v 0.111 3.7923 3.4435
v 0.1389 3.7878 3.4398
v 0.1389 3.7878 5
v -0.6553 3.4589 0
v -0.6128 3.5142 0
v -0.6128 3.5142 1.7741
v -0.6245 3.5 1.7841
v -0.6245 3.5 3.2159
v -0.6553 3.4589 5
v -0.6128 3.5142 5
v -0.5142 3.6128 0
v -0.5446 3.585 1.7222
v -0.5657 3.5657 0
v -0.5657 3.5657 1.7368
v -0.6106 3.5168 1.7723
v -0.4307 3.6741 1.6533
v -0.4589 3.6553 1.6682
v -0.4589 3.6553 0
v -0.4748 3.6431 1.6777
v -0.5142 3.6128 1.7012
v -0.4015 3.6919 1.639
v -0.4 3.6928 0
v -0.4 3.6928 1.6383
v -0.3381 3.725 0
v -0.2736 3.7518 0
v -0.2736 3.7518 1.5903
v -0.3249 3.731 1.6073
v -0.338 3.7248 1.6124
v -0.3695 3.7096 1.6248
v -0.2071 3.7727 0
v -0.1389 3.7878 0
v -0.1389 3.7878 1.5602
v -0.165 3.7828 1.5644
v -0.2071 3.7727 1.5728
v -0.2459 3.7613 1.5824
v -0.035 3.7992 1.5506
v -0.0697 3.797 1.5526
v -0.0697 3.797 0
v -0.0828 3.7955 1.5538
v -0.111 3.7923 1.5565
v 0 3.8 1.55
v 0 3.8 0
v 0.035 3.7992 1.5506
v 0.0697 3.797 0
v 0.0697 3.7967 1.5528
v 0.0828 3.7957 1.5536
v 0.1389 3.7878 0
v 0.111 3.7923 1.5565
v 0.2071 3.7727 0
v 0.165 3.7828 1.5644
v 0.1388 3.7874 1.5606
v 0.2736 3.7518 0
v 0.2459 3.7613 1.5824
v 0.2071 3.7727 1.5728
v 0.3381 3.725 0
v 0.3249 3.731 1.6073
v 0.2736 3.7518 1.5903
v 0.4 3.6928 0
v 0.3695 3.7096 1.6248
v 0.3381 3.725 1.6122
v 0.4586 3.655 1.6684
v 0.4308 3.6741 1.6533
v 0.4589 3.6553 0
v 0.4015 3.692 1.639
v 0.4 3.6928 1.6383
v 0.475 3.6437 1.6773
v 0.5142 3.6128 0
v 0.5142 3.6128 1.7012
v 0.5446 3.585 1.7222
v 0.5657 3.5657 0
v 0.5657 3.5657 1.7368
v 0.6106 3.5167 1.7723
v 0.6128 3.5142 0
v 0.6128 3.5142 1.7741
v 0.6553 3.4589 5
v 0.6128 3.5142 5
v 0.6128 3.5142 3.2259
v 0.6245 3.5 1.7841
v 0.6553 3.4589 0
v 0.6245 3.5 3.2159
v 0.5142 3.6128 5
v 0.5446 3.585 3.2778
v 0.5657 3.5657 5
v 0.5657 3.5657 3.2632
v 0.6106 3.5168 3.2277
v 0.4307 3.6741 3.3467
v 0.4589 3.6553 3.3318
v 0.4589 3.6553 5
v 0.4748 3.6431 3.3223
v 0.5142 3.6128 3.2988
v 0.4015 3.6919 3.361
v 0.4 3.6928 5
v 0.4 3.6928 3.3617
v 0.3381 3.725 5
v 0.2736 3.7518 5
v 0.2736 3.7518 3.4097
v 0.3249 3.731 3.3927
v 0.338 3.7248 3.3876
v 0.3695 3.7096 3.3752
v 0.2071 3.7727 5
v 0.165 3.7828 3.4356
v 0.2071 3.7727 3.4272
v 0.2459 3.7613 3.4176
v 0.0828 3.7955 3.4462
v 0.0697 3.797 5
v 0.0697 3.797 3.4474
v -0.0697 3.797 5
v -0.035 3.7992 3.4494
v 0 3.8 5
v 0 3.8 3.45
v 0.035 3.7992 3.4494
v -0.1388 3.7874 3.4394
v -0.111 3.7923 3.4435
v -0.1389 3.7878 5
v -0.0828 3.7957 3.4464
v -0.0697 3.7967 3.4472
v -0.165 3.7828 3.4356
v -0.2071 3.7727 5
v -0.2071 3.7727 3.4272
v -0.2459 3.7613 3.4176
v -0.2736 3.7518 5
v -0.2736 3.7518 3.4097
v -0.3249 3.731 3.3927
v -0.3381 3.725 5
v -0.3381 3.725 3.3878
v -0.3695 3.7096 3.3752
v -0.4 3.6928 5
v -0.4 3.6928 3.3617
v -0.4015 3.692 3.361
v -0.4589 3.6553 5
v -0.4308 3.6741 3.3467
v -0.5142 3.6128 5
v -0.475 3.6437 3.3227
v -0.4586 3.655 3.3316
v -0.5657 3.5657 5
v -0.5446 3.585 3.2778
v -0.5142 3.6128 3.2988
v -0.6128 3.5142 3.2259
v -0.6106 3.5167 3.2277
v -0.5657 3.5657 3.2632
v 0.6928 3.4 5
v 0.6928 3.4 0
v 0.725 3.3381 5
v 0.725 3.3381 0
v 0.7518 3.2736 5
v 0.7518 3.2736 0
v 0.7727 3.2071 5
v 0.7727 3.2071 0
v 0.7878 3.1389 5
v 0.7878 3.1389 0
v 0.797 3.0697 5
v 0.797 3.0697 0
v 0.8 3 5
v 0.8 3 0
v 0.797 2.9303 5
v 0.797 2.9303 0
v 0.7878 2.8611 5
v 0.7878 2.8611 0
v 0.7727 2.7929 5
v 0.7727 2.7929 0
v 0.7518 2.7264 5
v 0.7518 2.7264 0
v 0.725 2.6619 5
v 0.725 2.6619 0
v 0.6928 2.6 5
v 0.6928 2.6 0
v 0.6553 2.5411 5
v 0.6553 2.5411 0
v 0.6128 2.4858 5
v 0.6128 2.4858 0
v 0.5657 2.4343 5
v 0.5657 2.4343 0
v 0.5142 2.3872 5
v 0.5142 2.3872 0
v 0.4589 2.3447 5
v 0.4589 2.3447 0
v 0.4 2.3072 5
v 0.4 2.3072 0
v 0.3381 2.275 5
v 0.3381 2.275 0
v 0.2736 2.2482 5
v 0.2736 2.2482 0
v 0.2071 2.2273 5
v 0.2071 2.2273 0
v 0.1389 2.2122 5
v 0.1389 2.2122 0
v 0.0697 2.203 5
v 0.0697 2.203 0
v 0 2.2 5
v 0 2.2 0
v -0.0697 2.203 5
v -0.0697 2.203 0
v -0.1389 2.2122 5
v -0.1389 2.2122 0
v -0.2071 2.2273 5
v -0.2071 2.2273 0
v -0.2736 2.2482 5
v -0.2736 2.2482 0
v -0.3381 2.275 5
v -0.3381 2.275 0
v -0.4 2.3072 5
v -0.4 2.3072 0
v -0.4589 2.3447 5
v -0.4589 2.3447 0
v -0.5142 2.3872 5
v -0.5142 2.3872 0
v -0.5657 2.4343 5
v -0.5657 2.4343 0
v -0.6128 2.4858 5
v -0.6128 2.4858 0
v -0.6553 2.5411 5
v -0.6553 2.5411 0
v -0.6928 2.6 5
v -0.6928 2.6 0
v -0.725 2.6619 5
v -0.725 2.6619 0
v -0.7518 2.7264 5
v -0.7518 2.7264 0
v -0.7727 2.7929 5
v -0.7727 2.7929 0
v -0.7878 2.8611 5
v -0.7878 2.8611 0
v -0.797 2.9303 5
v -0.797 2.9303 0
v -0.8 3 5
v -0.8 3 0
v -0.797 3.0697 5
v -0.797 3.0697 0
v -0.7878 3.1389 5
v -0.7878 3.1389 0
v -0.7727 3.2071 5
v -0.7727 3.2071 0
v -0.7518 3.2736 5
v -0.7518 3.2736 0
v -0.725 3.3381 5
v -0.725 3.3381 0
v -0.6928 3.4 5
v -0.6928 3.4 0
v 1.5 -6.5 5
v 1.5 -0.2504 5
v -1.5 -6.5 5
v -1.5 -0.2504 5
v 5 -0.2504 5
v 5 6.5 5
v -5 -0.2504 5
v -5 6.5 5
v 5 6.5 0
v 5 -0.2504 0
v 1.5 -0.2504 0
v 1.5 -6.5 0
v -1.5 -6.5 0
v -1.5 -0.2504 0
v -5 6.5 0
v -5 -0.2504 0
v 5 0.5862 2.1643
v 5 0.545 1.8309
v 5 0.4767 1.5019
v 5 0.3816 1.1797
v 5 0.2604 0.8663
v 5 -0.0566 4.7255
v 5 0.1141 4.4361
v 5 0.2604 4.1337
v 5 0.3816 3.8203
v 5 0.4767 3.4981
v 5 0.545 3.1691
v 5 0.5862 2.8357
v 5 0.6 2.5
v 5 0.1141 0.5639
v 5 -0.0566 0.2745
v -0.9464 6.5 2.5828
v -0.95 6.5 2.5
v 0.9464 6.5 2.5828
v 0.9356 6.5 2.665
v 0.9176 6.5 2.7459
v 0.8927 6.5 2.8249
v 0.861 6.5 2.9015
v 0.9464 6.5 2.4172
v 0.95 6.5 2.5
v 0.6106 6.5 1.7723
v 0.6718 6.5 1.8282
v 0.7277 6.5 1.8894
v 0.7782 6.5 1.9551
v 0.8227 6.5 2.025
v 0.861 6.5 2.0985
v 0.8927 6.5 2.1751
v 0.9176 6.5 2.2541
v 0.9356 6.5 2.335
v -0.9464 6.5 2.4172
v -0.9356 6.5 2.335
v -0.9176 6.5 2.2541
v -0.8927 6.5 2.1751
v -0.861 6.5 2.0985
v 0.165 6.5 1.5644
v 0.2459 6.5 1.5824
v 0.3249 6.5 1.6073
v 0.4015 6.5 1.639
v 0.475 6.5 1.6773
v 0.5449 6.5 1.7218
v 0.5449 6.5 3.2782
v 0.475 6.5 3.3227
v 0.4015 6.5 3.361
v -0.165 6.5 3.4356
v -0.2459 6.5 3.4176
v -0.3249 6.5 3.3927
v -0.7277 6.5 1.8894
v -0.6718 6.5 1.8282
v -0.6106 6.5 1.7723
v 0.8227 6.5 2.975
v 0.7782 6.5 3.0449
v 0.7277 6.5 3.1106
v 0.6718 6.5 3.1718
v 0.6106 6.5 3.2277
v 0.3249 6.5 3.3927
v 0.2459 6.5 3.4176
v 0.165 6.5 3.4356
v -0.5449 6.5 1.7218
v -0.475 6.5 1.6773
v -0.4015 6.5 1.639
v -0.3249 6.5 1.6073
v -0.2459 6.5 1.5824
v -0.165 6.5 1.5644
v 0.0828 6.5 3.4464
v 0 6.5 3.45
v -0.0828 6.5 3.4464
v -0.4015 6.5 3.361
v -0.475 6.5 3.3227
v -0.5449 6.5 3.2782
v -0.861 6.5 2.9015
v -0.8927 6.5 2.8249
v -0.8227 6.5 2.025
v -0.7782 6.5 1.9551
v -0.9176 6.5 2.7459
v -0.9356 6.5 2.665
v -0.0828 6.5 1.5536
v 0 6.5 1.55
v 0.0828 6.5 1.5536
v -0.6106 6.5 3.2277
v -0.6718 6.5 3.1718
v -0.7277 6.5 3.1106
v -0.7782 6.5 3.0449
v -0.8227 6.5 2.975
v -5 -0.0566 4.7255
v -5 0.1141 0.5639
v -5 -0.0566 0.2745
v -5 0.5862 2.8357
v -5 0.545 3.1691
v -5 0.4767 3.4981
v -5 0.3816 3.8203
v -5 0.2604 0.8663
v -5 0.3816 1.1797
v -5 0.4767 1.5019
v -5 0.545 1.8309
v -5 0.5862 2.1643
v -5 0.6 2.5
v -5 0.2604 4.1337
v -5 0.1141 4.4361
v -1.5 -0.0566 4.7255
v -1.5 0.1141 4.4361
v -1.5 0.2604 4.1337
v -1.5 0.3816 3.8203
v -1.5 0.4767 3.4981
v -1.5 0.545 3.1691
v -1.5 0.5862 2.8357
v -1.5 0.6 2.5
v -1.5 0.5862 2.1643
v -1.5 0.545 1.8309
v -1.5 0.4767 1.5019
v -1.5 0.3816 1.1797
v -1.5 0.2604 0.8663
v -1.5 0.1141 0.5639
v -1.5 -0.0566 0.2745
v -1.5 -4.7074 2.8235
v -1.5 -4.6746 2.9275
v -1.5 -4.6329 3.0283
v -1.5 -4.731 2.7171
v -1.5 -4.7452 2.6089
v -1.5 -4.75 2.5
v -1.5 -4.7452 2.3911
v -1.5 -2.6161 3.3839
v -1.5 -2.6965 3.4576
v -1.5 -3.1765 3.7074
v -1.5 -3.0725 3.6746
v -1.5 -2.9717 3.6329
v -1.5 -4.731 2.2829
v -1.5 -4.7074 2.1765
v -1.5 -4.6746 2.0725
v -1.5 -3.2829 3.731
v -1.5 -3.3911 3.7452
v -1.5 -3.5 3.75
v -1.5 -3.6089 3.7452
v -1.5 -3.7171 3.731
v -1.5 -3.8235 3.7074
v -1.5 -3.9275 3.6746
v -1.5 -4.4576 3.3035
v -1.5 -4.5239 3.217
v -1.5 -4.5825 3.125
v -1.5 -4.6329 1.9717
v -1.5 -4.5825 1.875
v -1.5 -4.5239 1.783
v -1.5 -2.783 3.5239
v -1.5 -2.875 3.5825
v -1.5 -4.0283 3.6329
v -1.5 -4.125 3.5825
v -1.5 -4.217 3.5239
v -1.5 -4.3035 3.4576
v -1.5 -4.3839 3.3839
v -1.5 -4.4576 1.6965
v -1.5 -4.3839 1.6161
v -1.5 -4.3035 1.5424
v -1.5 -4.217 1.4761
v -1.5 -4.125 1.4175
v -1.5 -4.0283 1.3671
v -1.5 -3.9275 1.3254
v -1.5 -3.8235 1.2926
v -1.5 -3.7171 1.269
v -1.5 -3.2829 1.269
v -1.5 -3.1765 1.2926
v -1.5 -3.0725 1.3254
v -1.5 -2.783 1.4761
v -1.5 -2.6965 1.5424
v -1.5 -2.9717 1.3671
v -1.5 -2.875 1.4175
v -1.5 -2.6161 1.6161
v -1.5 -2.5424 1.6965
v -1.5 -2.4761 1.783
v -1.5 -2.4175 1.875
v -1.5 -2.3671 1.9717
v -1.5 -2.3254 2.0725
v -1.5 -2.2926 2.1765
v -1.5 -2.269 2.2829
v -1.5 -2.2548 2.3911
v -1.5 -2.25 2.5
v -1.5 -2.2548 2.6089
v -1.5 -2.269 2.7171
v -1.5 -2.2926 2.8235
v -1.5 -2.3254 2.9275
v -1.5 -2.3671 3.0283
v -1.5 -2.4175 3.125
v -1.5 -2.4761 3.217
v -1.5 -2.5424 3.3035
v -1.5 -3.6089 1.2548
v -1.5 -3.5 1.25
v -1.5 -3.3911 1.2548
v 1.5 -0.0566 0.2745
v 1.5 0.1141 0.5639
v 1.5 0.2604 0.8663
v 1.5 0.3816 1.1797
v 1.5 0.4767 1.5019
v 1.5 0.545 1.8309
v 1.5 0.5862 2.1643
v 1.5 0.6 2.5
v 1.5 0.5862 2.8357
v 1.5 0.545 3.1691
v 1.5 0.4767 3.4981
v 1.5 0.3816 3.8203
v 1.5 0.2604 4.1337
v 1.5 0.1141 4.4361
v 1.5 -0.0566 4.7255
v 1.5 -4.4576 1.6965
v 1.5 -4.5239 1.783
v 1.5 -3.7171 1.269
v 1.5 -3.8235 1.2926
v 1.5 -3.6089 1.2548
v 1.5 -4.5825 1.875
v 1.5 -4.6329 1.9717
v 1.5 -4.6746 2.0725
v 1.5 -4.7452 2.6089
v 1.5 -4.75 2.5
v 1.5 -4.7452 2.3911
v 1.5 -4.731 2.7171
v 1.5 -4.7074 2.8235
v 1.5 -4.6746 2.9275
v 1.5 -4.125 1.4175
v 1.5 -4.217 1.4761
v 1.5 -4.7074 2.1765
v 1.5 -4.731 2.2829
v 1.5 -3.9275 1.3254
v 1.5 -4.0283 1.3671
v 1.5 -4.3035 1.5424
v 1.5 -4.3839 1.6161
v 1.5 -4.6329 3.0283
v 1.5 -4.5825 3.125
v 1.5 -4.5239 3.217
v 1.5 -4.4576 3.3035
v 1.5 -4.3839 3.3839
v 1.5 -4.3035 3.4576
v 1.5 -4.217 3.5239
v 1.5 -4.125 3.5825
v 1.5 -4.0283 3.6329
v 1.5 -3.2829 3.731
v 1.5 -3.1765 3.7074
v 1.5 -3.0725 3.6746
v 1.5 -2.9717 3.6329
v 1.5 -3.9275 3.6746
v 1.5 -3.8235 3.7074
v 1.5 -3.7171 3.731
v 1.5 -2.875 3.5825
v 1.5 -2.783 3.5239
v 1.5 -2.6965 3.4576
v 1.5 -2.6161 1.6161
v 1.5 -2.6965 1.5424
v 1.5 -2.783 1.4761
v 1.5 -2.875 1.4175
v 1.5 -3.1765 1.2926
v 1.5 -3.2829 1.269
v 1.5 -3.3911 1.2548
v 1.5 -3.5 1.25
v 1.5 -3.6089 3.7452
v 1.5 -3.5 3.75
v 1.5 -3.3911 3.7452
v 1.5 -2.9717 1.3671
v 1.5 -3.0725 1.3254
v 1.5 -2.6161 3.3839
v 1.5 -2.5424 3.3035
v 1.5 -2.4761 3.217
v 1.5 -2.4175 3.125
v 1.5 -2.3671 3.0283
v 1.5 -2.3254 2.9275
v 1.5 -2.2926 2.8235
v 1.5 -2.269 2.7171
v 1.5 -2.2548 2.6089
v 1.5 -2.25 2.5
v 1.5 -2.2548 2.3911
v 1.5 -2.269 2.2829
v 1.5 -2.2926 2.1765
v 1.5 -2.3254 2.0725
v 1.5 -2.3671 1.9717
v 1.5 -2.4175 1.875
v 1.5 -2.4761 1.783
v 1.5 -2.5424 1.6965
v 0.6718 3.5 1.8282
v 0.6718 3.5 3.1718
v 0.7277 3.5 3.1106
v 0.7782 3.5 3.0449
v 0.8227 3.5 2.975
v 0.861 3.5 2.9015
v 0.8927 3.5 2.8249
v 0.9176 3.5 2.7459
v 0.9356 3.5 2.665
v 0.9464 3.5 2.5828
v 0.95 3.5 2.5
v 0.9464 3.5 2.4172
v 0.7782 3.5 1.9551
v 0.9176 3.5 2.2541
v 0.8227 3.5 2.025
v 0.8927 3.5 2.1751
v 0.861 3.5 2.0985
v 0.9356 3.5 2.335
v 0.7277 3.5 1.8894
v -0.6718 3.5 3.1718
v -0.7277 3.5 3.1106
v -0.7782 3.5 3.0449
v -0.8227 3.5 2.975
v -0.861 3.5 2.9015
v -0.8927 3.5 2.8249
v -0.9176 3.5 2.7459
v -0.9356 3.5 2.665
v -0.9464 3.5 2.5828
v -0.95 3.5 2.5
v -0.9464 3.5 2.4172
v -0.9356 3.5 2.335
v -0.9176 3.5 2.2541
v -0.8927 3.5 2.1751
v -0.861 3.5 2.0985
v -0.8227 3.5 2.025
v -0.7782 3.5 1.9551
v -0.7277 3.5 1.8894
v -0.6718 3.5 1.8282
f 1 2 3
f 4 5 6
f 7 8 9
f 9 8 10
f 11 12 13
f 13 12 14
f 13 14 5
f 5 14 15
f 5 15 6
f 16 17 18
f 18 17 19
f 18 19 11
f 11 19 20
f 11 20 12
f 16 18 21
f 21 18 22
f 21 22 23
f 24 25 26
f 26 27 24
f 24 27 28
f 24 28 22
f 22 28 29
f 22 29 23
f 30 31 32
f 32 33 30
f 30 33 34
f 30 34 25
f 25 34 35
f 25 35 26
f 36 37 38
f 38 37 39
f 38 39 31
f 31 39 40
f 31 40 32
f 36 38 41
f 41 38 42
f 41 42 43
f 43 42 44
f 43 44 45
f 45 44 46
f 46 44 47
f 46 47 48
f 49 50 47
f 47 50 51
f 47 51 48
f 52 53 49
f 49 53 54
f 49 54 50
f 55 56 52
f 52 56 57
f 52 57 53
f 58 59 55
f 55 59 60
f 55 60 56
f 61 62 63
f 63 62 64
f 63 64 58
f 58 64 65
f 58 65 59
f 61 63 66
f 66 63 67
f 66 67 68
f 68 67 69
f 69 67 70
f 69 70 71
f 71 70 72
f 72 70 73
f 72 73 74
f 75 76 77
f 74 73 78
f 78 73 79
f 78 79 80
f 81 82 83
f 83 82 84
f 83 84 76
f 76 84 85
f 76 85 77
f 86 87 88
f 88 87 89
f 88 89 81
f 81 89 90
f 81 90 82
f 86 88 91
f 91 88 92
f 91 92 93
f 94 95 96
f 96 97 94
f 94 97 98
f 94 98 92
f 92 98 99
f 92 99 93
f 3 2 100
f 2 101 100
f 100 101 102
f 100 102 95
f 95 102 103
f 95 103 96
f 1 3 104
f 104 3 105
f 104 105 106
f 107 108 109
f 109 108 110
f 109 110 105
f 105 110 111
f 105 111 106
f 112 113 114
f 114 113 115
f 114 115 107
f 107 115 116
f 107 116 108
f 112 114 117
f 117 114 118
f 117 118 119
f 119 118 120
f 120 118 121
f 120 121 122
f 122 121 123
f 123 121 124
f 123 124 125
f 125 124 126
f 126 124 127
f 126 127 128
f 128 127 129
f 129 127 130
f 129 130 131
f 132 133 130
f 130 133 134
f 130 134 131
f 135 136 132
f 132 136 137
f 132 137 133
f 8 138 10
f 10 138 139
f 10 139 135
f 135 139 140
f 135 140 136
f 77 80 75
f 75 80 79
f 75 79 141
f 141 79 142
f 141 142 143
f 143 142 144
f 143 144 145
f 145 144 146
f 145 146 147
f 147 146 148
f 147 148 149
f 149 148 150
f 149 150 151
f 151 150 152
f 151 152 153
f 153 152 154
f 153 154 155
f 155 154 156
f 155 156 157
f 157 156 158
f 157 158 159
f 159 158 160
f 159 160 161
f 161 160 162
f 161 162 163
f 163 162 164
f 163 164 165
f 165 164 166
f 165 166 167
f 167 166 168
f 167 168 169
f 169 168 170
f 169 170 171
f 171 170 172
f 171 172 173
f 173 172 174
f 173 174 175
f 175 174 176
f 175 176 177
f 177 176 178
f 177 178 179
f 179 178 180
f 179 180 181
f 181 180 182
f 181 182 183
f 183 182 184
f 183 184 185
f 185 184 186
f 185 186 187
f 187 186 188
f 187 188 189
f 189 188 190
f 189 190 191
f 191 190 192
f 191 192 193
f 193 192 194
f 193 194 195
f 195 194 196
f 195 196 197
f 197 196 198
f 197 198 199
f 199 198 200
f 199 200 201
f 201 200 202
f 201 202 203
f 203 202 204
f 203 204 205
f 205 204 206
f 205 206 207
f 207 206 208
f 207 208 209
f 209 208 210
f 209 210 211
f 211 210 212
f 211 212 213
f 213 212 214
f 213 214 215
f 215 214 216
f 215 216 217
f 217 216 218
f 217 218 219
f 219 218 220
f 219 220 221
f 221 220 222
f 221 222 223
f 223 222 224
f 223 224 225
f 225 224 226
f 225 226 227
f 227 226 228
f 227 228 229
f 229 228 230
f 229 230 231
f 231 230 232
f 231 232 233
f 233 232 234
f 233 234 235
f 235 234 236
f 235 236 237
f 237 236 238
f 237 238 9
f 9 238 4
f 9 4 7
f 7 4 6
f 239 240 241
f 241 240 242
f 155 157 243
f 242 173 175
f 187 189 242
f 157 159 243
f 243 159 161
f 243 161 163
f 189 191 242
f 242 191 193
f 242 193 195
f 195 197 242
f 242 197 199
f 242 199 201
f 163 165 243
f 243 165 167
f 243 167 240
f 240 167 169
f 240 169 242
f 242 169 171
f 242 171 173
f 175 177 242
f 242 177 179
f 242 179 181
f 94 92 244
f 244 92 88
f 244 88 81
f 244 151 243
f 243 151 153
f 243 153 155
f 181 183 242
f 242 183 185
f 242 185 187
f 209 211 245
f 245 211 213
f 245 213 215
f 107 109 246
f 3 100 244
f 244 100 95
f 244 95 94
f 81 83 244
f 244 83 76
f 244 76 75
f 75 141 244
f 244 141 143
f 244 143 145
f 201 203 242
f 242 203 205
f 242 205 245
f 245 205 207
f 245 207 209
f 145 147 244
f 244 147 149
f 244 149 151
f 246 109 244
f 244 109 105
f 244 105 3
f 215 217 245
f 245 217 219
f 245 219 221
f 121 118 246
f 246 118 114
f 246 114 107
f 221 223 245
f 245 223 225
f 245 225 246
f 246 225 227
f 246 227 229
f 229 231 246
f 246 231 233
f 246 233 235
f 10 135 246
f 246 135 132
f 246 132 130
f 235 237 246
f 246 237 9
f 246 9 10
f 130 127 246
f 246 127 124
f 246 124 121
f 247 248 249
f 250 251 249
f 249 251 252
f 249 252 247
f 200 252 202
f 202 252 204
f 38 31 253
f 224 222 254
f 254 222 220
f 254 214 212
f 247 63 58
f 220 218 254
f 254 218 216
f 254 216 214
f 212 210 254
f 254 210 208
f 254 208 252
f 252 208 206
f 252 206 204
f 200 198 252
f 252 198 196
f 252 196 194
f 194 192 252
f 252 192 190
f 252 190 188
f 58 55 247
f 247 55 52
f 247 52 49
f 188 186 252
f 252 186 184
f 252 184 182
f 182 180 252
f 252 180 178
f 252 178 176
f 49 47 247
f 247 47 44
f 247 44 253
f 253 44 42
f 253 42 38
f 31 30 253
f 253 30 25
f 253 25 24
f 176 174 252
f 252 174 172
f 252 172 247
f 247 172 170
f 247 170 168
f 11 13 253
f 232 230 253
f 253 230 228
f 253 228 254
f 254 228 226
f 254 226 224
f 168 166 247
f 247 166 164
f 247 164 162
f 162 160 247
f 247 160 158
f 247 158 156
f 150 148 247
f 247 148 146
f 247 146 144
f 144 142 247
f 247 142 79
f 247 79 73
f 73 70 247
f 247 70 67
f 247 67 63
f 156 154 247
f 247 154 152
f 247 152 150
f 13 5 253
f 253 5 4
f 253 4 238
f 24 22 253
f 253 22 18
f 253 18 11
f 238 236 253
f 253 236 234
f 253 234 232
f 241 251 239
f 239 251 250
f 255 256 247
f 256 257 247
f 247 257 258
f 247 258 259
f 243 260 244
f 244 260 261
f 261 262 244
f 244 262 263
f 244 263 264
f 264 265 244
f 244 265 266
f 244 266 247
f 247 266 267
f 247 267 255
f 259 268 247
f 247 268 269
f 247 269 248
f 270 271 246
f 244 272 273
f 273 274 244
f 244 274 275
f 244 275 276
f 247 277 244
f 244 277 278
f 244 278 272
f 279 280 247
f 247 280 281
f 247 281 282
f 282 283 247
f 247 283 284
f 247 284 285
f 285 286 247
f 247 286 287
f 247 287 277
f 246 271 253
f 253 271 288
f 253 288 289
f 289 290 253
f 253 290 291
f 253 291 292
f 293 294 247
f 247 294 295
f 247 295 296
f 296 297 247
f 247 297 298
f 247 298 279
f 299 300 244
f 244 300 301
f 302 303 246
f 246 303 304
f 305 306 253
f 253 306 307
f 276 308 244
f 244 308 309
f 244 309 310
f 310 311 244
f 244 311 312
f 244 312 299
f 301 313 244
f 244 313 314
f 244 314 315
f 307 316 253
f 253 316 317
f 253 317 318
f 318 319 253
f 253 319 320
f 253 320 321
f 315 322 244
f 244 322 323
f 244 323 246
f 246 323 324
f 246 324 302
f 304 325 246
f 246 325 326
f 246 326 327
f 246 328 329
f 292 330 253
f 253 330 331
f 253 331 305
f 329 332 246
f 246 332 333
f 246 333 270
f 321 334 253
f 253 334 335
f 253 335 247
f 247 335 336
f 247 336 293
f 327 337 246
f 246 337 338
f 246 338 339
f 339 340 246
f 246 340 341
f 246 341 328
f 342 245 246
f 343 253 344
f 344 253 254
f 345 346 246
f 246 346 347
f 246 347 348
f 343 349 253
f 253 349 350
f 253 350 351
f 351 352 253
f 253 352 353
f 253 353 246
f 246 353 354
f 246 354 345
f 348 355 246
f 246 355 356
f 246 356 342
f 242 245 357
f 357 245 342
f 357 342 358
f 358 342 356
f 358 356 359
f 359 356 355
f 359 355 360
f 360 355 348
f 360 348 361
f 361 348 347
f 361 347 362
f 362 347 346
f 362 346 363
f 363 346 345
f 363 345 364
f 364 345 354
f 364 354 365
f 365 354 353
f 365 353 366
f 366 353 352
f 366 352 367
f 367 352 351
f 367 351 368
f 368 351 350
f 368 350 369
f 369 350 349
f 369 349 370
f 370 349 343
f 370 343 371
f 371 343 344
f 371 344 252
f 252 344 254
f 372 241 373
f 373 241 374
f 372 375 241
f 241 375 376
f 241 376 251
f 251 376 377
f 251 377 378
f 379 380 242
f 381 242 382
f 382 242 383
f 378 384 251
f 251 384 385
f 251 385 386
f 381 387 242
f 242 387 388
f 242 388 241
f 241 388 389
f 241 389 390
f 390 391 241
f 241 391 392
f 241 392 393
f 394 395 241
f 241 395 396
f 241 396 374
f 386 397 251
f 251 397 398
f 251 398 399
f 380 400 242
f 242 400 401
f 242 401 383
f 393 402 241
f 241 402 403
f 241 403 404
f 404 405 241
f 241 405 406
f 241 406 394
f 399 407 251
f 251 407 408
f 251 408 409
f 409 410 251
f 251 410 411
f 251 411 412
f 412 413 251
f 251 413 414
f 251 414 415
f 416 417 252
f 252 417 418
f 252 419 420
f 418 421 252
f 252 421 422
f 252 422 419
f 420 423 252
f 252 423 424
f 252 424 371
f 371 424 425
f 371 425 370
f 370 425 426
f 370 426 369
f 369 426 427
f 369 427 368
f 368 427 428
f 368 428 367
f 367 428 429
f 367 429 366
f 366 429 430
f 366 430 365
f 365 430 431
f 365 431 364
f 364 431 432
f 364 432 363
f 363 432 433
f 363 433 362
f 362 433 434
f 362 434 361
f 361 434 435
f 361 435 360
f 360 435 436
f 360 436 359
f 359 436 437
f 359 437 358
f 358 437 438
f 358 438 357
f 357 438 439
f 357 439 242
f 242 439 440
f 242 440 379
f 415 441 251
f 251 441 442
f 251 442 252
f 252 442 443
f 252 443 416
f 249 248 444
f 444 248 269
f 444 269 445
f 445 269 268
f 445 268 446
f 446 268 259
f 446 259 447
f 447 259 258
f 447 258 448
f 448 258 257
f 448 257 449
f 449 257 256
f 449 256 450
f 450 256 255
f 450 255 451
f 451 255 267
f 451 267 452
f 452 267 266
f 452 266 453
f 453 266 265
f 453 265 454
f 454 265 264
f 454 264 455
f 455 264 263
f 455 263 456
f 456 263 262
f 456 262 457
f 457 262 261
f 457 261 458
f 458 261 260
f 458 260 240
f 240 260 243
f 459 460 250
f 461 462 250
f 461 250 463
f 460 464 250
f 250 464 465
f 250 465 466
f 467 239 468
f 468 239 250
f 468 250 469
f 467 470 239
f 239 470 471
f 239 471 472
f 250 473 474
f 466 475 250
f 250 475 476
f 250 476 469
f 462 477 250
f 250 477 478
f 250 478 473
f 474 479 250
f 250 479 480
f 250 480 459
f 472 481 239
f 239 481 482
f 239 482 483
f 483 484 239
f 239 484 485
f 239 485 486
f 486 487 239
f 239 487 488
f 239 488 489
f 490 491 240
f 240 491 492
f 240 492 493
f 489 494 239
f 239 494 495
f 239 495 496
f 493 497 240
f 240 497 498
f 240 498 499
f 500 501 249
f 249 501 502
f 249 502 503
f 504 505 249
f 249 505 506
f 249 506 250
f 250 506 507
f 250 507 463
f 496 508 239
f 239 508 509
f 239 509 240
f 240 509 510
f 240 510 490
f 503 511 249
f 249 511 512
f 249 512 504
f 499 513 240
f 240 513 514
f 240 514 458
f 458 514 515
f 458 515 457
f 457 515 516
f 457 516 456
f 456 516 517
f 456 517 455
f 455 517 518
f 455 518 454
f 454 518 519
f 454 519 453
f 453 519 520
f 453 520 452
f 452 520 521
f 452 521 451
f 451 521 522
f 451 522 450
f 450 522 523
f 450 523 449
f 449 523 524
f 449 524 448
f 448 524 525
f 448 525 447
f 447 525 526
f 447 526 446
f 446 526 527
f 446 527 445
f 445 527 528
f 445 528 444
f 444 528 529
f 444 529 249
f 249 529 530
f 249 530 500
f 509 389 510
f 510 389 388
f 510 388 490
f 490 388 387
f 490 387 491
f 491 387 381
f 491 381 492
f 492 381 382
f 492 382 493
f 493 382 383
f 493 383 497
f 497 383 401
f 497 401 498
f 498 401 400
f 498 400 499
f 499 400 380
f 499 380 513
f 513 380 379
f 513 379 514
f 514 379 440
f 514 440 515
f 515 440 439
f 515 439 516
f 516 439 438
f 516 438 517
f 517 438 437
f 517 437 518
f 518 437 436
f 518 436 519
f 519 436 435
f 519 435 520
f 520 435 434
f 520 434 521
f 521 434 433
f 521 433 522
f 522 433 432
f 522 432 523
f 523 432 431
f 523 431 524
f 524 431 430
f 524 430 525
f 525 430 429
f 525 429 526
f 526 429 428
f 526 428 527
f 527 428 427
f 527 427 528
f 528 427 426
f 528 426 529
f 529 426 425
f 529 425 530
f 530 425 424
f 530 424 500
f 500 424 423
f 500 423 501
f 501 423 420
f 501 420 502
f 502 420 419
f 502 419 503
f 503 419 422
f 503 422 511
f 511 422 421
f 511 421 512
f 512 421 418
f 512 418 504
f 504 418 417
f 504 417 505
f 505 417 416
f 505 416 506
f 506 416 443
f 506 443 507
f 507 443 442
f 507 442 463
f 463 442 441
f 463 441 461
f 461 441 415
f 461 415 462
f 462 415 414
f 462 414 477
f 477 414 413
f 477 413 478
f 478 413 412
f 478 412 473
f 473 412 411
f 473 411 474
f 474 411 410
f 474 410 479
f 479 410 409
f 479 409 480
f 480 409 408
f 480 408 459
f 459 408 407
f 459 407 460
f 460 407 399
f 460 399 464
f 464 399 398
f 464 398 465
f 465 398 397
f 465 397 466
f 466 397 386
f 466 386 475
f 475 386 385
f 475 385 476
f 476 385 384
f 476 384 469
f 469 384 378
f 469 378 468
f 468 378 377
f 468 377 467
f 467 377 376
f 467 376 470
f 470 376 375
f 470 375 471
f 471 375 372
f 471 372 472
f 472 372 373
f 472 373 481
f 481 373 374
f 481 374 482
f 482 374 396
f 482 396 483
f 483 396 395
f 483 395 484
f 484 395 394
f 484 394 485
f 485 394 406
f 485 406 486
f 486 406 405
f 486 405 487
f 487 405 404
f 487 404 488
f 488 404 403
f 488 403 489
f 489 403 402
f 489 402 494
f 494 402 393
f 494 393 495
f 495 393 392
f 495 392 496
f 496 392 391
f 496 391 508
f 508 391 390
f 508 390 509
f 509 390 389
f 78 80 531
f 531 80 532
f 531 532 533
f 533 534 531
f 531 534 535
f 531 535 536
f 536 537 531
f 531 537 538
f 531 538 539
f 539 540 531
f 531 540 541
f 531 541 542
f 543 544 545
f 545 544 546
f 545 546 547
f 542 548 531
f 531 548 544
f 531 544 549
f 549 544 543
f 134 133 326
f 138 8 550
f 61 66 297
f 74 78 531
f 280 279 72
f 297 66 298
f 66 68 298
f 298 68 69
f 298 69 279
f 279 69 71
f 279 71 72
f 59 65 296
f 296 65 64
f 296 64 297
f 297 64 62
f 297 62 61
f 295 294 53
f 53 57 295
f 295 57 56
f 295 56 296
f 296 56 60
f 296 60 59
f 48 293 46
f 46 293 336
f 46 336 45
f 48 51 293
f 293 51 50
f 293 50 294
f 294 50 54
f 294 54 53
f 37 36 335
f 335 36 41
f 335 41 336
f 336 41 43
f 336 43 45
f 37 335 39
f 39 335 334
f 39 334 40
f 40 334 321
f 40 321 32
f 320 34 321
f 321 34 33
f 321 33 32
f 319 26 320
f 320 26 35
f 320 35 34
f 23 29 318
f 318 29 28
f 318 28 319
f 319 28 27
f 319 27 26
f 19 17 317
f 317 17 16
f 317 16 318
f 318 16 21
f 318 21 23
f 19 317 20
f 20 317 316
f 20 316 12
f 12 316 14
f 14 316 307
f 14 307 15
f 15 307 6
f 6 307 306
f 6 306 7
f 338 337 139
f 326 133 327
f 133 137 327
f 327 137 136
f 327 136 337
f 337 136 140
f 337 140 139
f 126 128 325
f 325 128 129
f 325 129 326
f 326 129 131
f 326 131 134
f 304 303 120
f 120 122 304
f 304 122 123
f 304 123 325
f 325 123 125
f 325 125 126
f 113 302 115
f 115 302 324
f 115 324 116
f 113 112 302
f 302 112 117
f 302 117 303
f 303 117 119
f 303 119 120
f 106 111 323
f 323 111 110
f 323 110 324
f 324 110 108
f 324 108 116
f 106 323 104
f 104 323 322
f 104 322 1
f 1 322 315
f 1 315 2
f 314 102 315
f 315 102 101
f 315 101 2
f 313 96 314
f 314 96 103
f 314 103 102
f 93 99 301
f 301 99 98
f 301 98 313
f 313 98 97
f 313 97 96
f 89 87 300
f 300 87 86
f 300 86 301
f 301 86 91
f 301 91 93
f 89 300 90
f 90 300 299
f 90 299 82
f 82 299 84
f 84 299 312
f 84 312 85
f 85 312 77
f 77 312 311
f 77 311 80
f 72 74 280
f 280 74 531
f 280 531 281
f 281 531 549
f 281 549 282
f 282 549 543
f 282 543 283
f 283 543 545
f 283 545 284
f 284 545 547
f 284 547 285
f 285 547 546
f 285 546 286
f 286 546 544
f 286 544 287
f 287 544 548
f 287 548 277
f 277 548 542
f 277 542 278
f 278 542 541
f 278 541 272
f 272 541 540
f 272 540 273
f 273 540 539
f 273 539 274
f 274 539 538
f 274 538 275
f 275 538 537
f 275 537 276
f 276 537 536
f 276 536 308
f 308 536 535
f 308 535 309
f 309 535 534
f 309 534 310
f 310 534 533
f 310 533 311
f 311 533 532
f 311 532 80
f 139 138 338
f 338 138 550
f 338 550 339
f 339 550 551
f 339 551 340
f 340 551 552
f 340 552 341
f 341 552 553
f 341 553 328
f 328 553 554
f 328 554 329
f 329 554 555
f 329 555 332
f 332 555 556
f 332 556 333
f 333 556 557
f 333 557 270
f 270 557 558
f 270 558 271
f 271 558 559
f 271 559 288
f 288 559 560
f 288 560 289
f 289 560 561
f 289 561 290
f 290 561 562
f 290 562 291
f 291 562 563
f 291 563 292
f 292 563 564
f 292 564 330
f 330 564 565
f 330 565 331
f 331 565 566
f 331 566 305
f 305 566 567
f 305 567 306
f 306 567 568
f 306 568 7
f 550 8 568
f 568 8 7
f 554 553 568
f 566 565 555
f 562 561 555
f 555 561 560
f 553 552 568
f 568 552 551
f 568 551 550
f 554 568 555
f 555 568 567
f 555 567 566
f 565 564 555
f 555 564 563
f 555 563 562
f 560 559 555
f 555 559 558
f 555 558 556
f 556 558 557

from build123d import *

# Parameters (mm, degrees)
SKETCH1_W           = 10
SKETCH1_H           = 13
SKETCH1_R           = 0.8
BOSS_EXTRUDE1_DEPTH = 5
CUT_EXTRUDE2_DEPTH  = 3.5
SKETCH4_R           = 1.25
CUT_EXTRUDE3_DEPTH  = 7.5
SKETCH5_R           = 0.95
CUT_EXTRUDE4_DEPTH  = 3


with BuildPart() as part:
    # Sketch1 → Boss-Extrude1 (new body)
    with BuildSketch(Plane.XY):
        Rectangle(SKETCH1_W, SKETCH1_H)
        with Locations((0, 3)):
            Circle(SKETCH1_R, mode=Mode.SUBTRACT)
    extrude(amount=BOSS_EXTRUDE1_DEPTH)

    # Sketch3 → Cut-Extrude2 (cut)
    with BuildSketch(Plane.ZY.offset(5)):
        with BuildLine():
            Line((-1.6, -3.5), (-1.6, -7.6))
            Line((-1.6, -7.6), (6.6, -7.6))
            Line((6.6, -7.6), (6.6, -3.5))
            ThreePointArc((6.6, -3.5), (2.5, 0.6), (-1.6, -3.5))
        make_face()
    cut_extrude2 = extrude(amount=-CUT_EXTRUDE2_DEPTH, mode=Mode.SUBTRACT)

    # Mirror1: Cut-Extrude2 across plane
    add(cut_extrude2.mirror(Plane(origin=(0, 0, 0), x_dir=(0, 0, 1), z_dir=(1, 0, 0))), mode=Mode.SUBTRACT)

    # Sketch4 → Cut-Extrude3 (cut, through all)
    with BuildSketch(Plane.ZY.offset(1.5)):
        with Locations((2.5, -3.5)):
            Circle(SKETCH4_R)
    extrude(amount=-CUT_EXTRUDE3_DEPTH, mode=Mode.SUBTRACT)

    # Sketch5 → Cut-Extrude4 (cut)
    with BuildSketch(Plane(origin=(0, 6.5, 0), x_dir=(1, 0, 0), z_dir=(0, 1, 0))):
        with Locations((0, -2.5)):
            Circle(SKETCH5_R)
    extrude(amount=-CUT_EXTRUDE4_DEPTH, mode=Mode.SUBTRACT)


solid = part.part
